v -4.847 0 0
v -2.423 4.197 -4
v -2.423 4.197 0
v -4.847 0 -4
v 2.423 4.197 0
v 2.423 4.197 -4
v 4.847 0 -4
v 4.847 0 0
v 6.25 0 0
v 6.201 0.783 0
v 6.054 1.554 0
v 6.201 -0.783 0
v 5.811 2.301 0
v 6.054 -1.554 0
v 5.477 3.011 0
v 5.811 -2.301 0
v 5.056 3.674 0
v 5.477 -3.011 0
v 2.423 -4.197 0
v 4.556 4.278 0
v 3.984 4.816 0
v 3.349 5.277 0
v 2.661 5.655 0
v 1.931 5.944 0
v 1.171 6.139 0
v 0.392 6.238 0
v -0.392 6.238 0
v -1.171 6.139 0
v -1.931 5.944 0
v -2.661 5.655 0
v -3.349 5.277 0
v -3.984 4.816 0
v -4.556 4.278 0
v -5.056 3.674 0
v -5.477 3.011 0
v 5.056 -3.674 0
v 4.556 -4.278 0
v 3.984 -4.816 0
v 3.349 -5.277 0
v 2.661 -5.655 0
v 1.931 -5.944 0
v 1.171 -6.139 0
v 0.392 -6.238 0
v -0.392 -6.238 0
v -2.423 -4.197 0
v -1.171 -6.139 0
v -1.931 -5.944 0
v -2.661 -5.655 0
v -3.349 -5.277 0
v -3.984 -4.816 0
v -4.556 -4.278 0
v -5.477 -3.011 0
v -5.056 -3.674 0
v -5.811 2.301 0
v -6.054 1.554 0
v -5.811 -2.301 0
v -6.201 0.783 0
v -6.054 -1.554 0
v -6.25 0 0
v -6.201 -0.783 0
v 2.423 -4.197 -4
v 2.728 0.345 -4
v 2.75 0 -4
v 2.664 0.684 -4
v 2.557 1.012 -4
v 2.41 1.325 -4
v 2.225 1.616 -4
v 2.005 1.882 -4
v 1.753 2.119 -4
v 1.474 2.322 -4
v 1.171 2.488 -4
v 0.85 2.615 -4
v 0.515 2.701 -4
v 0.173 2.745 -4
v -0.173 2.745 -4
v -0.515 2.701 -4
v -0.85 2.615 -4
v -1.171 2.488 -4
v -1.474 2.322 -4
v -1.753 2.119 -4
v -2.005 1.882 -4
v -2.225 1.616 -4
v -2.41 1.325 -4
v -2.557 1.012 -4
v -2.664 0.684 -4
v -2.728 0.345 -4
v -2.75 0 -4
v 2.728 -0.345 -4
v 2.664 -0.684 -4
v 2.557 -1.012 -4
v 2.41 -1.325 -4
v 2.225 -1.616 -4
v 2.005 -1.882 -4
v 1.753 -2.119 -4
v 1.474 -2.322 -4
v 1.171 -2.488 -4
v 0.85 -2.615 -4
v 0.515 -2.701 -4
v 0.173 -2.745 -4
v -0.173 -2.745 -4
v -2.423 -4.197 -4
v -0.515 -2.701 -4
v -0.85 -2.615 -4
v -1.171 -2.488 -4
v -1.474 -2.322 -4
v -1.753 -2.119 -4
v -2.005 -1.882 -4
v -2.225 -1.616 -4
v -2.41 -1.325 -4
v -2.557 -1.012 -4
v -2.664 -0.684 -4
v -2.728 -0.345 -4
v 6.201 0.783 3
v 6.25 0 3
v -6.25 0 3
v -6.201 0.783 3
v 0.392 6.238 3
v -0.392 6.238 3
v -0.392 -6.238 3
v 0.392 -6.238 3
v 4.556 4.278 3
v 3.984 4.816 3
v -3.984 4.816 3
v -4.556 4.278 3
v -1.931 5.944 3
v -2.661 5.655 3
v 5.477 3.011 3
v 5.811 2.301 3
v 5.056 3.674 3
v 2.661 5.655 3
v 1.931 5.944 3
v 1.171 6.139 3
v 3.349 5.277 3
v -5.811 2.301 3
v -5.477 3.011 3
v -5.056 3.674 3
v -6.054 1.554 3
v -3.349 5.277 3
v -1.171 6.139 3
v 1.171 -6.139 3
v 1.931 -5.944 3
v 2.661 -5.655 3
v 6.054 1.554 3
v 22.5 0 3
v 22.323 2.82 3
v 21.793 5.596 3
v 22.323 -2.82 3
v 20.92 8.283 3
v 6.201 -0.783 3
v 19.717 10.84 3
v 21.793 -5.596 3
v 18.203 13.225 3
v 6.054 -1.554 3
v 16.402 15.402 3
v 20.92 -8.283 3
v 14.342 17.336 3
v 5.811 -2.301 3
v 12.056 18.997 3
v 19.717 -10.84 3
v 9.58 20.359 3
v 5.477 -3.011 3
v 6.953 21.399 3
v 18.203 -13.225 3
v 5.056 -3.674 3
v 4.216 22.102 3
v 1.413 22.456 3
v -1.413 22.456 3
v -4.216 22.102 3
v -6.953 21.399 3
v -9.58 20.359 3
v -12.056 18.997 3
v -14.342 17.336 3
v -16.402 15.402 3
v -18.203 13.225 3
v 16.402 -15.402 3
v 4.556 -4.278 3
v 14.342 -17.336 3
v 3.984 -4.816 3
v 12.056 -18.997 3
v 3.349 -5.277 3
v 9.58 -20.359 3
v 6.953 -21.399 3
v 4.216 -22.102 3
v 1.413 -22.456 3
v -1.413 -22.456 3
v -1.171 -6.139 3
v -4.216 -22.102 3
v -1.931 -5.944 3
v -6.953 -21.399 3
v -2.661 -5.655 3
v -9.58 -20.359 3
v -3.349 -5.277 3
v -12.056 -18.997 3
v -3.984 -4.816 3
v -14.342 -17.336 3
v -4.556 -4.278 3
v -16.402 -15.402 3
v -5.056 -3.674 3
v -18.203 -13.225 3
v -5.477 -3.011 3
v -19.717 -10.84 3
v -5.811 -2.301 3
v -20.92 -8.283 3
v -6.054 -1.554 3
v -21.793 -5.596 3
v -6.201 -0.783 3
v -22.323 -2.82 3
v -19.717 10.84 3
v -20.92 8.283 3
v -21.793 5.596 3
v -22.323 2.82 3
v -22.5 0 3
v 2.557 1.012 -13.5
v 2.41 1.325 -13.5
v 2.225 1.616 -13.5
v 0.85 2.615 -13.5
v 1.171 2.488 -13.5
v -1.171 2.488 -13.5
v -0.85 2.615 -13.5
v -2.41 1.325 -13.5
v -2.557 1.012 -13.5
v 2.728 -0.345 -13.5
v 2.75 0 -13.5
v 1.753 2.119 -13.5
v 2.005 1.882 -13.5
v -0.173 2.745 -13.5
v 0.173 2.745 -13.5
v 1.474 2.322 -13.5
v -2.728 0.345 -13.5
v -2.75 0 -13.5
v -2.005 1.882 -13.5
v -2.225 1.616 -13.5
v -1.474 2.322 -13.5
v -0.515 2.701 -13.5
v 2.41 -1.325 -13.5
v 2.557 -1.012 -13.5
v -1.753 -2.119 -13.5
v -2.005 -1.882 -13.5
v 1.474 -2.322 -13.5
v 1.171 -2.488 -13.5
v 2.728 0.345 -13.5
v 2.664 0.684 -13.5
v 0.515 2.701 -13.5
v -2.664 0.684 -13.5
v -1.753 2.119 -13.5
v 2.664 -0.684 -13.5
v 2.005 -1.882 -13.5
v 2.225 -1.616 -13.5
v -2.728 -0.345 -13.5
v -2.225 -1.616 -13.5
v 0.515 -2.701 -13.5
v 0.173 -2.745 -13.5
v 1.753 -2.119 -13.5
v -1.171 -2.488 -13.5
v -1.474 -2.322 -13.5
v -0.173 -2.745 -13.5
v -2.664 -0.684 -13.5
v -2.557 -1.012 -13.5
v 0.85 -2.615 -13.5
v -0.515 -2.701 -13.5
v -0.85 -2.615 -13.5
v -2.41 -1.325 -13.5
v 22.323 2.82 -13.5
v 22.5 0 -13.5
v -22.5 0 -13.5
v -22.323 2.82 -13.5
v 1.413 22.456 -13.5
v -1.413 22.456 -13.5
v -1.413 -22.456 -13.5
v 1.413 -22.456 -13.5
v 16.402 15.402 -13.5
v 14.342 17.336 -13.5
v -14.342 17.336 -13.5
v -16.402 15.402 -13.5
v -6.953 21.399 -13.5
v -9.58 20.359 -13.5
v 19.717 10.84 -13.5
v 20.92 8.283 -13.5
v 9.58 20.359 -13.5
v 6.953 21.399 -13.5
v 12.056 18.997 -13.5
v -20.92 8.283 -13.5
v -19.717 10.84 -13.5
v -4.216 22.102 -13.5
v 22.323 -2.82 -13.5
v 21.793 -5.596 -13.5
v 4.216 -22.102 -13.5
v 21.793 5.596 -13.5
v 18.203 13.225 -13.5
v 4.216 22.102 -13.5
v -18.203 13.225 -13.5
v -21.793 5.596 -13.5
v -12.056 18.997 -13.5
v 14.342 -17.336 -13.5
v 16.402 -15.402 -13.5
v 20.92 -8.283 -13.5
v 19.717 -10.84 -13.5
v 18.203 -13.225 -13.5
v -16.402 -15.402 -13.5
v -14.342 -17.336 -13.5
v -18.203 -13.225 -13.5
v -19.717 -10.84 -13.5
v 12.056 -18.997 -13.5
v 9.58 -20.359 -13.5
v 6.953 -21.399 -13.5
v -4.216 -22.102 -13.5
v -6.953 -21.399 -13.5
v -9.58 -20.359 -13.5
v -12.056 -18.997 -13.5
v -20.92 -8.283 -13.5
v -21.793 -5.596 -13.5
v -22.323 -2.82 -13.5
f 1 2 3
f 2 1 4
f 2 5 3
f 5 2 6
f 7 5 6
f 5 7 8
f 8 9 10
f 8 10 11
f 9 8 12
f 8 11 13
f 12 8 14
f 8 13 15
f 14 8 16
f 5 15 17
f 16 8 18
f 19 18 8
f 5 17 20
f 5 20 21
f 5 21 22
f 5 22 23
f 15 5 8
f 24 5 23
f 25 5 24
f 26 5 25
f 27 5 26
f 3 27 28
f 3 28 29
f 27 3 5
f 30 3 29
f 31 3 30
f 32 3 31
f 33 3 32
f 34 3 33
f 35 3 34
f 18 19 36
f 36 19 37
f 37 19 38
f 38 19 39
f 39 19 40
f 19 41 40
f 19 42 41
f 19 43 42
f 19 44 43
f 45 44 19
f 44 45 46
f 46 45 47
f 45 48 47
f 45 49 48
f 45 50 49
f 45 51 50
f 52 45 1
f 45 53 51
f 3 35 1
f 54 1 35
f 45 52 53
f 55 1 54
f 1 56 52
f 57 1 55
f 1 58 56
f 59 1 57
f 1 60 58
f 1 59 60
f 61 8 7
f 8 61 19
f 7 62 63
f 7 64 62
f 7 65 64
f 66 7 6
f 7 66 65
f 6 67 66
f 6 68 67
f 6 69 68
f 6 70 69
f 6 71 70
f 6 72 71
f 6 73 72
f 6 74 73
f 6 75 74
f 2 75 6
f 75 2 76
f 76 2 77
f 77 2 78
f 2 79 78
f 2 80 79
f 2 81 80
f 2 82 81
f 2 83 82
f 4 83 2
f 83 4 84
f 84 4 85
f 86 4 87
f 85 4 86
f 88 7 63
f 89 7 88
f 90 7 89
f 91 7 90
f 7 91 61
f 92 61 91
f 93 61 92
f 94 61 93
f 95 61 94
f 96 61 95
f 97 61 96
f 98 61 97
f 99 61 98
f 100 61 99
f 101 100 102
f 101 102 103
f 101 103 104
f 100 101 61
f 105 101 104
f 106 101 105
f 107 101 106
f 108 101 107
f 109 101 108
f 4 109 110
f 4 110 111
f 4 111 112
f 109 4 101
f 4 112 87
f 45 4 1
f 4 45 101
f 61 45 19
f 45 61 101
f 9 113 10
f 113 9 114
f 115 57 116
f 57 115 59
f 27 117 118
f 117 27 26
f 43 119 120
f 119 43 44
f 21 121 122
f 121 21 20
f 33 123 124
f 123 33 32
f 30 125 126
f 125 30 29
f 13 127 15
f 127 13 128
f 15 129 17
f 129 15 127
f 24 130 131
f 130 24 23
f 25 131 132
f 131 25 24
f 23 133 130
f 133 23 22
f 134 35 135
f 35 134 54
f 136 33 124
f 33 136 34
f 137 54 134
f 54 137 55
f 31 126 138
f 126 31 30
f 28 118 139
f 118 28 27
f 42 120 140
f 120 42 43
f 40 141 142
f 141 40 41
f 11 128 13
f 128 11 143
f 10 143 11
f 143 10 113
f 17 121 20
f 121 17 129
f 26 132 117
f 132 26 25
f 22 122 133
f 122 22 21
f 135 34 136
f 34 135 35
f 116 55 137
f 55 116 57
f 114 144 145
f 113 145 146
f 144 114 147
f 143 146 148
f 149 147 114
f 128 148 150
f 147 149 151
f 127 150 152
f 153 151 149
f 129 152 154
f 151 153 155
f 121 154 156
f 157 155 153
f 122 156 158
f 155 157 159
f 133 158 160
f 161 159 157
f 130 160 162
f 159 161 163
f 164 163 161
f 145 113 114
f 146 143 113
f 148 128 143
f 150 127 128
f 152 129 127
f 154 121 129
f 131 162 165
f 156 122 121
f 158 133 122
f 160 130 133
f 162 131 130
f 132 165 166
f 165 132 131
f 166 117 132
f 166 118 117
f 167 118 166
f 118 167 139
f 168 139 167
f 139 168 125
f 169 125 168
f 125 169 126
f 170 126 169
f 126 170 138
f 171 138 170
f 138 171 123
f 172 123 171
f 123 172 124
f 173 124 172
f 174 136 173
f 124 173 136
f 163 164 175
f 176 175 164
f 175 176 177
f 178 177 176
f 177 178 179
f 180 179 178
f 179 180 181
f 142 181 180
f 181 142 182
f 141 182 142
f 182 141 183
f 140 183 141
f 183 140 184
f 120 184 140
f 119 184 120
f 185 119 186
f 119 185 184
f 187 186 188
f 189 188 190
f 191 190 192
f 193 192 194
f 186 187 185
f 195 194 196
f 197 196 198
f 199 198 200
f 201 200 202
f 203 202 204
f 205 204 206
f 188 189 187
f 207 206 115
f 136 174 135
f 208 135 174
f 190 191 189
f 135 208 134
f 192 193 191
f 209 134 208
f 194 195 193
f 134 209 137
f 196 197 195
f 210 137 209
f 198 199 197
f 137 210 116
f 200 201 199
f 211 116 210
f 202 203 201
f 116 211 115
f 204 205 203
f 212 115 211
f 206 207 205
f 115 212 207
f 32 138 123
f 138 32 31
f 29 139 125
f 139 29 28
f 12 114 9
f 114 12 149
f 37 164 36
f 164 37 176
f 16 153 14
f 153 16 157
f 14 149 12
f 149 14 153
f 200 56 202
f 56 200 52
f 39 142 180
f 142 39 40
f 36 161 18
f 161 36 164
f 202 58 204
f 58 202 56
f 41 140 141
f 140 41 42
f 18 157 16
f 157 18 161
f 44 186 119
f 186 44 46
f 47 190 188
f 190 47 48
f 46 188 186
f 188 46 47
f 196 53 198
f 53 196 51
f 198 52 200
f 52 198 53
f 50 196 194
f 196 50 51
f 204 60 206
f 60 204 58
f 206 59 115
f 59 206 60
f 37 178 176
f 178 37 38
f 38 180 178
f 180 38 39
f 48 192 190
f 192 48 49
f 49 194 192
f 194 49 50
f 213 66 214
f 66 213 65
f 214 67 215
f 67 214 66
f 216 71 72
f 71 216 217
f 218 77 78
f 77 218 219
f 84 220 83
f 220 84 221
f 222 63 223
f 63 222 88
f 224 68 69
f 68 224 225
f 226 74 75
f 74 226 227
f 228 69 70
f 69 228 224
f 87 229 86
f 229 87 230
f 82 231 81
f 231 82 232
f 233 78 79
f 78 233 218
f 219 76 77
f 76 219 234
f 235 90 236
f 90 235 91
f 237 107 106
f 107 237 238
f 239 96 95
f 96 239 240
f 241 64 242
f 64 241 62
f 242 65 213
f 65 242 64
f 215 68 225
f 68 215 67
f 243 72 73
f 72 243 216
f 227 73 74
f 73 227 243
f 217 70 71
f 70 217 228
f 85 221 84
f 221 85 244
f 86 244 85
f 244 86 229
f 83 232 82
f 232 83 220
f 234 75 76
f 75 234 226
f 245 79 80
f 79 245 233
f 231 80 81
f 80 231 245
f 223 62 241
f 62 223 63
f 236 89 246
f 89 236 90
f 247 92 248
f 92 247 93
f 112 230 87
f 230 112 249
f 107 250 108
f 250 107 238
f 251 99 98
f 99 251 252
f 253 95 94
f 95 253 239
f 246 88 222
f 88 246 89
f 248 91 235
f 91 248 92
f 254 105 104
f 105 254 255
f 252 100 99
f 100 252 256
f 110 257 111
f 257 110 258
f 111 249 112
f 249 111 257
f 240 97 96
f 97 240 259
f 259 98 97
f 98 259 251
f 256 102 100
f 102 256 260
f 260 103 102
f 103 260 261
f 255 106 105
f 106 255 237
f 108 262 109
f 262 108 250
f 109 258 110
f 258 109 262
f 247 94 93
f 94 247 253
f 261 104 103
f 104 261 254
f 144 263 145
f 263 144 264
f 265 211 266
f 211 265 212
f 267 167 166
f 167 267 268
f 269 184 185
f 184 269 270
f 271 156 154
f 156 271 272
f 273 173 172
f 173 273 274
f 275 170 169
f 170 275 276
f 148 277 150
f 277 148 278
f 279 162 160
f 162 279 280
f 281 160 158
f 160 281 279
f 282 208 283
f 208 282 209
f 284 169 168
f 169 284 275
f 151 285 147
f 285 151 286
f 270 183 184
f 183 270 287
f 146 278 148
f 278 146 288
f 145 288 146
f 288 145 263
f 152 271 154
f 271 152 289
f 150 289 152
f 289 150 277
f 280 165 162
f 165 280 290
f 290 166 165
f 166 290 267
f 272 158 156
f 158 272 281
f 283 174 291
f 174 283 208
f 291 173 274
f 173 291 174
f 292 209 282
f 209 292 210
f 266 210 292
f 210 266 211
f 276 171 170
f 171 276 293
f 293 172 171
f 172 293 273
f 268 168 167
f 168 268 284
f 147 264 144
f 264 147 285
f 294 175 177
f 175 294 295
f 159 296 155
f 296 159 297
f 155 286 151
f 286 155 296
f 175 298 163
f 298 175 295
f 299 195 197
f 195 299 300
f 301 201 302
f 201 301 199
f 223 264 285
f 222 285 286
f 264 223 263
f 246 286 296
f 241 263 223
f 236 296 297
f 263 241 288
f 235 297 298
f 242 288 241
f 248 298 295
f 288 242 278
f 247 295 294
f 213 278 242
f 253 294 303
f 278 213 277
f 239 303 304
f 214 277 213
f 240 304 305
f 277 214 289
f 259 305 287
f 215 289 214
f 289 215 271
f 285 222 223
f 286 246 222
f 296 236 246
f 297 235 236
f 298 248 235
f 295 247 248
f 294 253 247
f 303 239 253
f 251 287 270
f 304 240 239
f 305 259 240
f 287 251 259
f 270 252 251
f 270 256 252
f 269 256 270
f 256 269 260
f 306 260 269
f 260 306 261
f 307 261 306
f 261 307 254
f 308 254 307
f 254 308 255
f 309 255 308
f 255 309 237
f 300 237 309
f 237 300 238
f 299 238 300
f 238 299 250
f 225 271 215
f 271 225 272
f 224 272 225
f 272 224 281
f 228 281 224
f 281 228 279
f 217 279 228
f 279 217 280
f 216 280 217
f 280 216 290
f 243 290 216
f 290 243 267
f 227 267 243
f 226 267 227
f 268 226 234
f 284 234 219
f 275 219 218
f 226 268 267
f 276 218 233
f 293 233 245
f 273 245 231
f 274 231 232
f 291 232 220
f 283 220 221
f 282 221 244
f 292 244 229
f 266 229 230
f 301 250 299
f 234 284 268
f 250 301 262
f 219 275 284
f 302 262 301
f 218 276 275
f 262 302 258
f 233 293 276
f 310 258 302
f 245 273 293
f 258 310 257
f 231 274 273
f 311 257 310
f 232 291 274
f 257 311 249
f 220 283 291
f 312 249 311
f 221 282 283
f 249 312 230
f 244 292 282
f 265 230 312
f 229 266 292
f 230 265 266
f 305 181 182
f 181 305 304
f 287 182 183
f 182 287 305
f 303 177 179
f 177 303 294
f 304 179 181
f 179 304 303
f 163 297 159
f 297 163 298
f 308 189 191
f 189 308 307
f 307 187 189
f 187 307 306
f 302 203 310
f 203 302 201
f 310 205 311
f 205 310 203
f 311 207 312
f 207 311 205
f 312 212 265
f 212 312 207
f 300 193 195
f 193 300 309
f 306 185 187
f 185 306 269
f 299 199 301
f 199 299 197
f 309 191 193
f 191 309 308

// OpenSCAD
$fn = 50;


difference() {
	union() {
		translate(v = [0, 0, -13.5000000000]) {
			cylinder(h = 16.5000000000, r = 22.5000000000);
		}
	}
	union() {
		translate(v = [0, 0, 0]) {
			rotate(a = [0, 0, 0]) {
				difference() {
					union() {
						translate(v = [0, 0, -4]) {
							linear_extrude(height = 4) {
								polygon(points = [[4.8468000000, 0.0000000000], [2.4234000000, 4.1974519271], [-2.4234000000, 4.1974519271], [-4.8468000000, 0.0000000000], [-2.4234000000, -4.1974519271], [2.4234000000, -4.1974519271]]);
							}
						}
					}
					union();
				}
			}
		}
		#cylinder(h = 3, r = 6.2500000000);
		#translate(v = [0, 0, -100.0000000000]) {
			cylinder(h = 200, r = 2.7500000000);
		}
	}
}
